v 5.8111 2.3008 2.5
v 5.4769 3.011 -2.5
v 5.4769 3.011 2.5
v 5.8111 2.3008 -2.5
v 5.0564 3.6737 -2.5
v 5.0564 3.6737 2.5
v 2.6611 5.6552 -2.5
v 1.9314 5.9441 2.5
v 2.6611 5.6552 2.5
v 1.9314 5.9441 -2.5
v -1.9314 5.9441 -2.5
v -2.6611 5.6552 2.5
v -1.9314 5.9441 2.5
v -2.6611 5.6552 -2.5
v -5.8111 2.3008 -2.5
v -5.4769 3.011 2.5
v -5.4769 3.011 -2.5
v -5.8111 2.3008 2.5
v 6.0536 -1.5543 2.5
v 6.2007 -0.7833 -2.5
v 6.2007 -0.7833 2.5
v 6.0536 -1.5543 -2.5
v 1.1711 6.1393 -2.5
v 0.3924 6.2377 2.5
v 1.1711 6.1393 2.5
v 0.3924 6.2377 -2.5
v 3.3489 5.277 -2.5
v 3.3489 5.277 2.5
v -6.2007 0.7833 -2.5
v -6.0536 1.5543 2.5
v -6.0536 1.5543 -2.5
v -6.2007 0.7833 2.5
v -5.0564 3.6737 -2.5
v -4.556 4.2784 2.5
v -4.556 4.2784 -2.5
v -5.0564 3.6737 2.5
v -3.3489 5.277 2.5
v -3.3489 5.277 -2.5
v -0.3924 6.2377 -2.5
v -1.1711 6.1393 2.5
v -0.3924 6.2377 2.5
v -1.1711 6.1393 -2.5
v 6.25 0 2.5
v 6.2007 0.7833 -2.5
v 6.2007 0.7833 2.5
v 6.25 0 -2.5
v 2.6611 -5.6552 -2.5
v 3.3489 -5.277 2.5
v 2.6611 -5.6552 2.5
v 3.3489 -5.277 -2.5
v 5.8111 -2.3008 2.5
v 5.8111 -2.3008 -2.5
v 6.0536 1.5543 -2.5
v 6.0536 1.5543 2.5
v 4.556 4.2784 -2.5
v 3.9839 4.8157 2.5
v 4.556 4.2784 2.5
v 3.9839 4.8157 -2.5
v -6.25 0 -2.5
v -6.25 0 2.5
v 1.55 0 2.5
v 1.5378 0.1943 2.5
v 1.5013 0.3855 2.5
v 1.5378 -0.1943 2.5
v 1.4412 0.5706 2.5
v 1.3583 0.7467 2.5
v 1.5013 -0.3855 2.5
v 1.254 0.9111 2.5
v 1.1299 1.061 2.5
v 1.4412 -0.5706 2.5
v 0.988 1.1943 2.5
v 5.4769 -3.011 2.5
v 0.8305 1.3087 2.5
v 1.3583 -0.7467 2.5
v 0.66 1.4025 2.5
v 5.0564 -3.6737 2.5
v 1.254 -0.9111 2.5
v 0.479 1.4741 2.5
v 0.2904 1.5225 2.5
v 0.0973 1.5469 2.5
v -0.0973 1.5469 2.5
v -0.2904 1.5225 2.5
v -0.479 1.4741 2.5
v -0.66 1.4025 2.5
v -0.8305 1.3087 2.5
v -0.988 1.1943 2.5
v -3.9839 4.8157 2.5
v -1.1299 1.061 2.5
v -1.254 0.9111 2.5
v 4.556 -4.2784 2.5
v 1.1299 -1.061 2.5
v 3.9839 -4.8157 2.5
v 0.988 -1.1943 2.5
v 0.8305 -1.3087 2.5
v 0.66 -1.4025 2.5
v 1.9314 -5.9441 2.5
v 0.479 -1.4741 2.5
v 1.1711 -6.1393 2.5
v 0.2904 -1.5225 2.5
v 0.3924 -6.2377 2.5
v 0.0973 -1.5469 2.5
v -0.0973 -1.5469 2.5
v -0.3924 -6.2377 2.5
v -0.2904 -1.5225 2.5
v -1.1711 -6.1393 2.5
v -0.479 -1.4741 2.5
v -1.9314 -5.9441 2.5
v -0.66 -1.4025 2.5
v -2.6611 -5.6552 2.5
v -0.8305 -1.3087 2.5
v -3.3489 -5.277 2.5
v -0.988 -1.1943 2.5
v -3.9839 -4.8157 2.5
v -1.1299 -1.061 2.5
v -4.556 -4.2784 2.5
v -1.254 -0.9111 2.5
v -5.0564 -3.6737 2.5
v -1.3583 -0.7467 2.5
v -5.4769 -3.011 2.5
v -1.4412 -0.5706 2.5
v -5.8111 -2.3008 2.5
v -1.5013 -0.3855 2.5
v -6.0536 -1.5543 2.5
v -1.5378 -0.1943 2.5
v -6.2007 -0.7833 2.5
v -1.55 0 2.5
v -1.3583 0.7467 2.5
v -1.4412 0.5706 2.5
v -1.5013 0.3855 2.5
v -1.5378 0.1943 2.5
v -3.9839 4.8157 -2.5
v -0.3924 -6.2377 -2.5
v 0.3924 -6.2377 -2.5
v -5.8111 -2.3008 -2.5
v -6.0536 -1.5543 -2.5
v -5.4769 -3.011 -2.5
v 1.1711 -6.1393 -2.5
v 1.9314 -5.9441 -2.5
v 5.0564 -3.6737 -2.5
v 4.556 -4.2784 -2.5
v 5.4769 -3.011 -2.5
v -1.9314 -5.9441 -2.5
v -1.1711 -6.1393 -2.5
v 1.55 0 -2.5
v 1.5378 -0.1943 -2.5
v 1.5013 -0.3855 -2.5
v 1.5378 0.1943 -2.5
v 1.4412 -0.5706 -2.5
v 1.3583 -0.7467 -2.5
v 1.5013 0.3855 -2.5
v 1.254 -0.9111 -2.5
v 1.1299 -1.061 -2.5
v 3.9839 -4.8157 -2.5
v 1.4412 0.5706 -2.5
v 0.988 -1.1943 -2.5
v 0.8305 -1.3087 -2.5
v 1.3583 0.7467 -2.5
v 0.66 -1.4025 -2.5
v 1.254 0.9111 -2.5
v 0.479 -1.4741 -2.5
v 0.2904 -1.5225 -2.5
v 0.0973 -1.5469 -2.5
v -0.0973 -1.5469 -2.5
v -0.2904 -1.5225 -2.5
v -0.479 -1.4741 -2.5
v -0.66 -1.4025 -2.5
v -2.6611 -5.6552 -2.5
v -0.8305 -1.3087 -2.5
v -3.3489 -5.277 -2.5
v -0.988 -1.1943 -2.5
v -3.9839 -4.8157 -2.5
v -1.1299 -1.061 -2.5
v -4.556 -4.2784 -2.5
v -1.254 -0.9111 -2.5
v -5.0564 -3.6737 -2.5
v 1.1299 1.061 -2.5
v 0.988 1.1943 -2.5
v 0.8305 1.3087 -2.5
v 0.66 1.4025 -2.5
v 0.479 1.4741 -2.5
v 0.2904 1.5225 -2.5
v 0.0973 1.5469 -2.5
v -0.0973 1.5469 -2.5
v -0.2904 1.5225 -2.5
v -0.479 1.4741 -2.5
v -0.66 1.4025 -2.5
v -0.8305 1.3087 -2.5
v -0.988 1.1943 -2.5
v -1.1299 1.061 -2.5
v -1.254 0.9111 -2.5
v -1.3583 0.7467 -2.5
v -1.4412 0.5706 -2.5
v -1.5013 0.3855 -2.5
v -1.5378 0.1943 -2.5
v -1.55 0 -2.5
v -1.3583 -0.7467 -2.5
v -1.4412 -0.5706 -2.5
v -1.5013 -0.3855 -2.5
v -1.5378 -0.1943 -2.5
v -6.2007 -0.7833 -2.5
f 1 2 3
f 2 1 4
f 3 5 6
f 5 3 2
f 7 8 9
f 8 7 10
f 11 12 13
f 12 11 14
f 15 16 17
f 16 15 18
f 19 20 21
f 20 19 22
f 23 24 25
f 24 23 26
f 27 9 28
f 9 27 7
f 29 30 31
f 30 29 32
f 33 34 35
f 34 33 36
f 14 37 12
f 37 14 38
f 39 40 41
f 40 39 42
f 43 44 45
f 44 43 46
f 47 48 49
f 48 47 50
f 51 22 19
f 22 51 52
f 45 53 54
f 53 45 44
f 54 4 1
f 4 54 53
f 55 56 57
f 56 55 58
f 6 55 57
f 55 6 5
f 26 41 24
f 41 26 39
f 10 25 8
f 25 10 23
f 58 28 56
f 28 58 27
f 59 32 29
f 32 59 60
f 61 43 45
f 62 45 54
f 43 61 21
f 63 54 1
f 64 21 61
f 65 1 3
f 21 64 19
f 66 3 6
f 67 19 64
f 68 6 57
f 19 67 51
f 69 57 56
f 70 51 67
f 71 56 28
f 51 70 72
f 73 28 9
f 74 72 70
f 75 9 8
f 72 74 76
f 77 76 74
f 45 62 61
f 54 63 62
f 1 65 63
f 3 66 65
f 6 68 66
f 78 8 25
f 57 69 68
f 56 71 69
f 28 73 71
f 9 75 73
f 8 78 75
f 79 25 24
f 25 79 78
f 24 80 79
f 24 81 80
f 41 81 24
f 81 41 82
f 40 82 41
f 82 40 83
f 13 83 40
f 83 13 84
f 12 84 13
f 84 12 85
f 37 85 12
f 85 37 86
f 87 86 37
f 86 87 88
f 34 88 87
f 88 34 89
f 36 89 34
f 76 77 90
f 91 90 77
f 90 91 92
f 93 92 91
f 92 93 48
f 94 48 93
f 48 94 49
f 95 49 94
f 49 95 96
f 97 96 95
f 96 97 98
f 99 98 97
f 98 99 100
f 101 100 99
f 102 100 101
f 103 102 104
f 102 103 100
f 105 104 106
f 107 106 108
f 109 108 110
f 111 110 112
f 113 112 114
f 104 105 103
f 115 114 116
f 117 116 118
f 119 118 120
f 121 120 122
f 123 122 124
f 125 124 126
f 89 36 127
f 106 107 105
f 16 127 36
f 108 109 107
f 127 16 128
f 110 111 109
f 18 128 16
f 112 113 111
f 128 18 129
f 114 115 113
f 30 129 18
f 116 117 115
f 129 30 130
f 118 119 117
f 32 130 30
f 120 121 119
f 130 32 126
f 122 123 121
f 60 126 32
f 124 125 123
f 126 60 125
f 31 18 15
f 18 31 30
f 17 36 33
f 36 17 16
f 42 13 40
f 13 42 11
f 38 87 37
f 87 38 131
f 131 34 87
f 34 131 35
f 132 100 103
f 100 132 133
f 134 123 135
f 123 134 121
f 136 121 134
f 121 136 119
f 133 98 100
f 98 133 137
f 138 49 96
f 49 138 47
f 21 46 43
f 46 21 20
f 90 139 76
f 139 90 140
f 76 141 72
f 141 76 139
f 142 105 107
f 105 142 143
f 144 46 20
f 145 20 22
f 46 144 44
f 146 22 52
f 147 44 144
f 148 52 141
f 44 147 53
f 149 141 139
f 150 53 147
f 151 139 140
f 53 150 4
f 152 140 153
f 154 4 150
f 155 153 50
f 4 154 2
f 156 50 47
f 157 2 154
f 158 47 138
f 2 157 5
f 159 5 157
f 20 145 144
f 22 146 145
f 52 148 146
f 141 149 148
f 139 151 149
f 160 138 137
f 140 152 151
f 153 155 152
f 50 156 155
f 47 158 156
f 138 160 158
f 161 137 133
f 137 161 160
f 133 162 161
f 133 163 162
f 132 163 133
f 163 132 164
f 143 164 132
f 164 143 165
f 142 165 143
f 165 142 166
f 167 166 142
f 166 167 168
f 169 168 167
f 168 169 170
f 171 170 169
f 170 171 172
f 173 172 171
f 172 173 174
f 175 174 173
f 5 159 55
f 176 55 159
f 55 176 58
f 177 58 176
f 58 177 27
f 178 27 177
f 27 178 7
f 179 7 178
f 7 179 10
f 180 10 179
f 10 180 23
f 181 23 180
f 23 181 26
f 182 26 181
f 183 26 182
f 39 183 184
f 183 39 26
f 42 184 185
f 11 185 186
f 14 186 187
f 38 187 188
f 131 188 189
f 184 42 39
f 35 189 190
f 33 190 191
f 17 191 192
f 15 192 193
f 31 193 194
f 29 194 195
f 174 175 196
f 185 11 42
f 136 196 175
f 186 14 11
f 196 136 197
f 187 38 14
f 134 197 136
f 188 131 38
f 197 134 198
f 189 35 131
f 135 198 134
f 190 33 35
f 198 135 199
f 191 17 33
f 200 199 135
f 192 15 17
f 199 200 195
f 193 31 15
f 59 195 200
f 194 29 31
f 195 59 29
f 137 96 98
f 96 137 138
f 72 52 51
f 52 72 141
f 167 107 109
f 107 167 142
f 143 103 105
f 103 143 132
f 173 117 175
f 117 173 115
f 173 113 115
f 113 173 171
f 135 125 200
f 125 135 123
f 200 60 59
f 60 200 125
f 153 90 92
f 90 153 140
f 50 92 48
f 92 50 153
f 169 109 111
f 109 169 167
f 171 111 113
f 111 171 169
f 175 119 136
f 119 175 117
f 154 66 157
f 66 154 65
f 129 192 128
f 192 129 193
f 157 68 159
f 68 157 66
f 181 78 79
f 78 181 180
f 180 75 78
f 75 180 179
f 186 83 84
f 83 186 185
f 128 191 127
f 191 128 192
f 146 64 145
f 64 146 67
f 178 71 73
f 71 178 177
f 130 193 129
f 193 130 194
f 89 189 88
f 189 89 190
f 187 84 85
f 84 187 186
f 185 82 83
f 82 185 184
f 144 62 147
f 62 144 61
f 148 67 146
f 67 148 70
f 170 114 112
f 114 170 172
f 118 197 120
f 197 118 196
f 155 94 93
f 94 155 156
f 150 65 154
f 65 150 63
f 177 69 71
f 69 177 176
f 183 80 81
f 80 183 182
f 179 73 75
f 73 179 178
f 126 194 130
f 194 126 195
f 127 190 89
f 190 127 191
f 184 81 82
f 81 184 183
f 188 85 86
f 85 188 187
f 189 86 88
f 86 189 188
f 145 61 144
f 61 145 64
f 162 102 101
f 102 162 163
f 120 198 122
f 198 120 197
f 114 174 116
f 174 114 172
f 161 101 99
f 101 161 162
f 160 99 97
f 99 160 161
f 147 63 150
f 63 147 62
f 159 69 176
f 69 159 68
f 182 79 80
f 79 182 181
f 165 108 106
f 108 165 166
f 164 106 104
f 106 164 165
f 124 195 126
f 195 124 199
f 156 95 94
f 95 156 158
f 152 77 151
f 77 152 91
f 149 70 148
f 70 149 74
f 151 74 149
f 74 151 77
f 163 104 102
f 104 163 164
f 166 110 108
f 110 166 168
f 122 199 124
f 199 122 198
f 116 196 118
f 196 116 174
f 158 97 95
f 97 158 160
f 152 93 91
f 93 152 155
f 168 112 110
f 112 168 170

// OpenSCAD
$fn = 50;


difference() {
	union() {
		translate(v = [0, 0, -2.5000000000]) {
			cylinder(h = 5, r = 6.2500000000);
		}
	}
	union() {
		translate(v = [0, 0, -100.0000000000]) {
			cylinder(h = 200, r = 1.5500000000);
		}
	}
}
